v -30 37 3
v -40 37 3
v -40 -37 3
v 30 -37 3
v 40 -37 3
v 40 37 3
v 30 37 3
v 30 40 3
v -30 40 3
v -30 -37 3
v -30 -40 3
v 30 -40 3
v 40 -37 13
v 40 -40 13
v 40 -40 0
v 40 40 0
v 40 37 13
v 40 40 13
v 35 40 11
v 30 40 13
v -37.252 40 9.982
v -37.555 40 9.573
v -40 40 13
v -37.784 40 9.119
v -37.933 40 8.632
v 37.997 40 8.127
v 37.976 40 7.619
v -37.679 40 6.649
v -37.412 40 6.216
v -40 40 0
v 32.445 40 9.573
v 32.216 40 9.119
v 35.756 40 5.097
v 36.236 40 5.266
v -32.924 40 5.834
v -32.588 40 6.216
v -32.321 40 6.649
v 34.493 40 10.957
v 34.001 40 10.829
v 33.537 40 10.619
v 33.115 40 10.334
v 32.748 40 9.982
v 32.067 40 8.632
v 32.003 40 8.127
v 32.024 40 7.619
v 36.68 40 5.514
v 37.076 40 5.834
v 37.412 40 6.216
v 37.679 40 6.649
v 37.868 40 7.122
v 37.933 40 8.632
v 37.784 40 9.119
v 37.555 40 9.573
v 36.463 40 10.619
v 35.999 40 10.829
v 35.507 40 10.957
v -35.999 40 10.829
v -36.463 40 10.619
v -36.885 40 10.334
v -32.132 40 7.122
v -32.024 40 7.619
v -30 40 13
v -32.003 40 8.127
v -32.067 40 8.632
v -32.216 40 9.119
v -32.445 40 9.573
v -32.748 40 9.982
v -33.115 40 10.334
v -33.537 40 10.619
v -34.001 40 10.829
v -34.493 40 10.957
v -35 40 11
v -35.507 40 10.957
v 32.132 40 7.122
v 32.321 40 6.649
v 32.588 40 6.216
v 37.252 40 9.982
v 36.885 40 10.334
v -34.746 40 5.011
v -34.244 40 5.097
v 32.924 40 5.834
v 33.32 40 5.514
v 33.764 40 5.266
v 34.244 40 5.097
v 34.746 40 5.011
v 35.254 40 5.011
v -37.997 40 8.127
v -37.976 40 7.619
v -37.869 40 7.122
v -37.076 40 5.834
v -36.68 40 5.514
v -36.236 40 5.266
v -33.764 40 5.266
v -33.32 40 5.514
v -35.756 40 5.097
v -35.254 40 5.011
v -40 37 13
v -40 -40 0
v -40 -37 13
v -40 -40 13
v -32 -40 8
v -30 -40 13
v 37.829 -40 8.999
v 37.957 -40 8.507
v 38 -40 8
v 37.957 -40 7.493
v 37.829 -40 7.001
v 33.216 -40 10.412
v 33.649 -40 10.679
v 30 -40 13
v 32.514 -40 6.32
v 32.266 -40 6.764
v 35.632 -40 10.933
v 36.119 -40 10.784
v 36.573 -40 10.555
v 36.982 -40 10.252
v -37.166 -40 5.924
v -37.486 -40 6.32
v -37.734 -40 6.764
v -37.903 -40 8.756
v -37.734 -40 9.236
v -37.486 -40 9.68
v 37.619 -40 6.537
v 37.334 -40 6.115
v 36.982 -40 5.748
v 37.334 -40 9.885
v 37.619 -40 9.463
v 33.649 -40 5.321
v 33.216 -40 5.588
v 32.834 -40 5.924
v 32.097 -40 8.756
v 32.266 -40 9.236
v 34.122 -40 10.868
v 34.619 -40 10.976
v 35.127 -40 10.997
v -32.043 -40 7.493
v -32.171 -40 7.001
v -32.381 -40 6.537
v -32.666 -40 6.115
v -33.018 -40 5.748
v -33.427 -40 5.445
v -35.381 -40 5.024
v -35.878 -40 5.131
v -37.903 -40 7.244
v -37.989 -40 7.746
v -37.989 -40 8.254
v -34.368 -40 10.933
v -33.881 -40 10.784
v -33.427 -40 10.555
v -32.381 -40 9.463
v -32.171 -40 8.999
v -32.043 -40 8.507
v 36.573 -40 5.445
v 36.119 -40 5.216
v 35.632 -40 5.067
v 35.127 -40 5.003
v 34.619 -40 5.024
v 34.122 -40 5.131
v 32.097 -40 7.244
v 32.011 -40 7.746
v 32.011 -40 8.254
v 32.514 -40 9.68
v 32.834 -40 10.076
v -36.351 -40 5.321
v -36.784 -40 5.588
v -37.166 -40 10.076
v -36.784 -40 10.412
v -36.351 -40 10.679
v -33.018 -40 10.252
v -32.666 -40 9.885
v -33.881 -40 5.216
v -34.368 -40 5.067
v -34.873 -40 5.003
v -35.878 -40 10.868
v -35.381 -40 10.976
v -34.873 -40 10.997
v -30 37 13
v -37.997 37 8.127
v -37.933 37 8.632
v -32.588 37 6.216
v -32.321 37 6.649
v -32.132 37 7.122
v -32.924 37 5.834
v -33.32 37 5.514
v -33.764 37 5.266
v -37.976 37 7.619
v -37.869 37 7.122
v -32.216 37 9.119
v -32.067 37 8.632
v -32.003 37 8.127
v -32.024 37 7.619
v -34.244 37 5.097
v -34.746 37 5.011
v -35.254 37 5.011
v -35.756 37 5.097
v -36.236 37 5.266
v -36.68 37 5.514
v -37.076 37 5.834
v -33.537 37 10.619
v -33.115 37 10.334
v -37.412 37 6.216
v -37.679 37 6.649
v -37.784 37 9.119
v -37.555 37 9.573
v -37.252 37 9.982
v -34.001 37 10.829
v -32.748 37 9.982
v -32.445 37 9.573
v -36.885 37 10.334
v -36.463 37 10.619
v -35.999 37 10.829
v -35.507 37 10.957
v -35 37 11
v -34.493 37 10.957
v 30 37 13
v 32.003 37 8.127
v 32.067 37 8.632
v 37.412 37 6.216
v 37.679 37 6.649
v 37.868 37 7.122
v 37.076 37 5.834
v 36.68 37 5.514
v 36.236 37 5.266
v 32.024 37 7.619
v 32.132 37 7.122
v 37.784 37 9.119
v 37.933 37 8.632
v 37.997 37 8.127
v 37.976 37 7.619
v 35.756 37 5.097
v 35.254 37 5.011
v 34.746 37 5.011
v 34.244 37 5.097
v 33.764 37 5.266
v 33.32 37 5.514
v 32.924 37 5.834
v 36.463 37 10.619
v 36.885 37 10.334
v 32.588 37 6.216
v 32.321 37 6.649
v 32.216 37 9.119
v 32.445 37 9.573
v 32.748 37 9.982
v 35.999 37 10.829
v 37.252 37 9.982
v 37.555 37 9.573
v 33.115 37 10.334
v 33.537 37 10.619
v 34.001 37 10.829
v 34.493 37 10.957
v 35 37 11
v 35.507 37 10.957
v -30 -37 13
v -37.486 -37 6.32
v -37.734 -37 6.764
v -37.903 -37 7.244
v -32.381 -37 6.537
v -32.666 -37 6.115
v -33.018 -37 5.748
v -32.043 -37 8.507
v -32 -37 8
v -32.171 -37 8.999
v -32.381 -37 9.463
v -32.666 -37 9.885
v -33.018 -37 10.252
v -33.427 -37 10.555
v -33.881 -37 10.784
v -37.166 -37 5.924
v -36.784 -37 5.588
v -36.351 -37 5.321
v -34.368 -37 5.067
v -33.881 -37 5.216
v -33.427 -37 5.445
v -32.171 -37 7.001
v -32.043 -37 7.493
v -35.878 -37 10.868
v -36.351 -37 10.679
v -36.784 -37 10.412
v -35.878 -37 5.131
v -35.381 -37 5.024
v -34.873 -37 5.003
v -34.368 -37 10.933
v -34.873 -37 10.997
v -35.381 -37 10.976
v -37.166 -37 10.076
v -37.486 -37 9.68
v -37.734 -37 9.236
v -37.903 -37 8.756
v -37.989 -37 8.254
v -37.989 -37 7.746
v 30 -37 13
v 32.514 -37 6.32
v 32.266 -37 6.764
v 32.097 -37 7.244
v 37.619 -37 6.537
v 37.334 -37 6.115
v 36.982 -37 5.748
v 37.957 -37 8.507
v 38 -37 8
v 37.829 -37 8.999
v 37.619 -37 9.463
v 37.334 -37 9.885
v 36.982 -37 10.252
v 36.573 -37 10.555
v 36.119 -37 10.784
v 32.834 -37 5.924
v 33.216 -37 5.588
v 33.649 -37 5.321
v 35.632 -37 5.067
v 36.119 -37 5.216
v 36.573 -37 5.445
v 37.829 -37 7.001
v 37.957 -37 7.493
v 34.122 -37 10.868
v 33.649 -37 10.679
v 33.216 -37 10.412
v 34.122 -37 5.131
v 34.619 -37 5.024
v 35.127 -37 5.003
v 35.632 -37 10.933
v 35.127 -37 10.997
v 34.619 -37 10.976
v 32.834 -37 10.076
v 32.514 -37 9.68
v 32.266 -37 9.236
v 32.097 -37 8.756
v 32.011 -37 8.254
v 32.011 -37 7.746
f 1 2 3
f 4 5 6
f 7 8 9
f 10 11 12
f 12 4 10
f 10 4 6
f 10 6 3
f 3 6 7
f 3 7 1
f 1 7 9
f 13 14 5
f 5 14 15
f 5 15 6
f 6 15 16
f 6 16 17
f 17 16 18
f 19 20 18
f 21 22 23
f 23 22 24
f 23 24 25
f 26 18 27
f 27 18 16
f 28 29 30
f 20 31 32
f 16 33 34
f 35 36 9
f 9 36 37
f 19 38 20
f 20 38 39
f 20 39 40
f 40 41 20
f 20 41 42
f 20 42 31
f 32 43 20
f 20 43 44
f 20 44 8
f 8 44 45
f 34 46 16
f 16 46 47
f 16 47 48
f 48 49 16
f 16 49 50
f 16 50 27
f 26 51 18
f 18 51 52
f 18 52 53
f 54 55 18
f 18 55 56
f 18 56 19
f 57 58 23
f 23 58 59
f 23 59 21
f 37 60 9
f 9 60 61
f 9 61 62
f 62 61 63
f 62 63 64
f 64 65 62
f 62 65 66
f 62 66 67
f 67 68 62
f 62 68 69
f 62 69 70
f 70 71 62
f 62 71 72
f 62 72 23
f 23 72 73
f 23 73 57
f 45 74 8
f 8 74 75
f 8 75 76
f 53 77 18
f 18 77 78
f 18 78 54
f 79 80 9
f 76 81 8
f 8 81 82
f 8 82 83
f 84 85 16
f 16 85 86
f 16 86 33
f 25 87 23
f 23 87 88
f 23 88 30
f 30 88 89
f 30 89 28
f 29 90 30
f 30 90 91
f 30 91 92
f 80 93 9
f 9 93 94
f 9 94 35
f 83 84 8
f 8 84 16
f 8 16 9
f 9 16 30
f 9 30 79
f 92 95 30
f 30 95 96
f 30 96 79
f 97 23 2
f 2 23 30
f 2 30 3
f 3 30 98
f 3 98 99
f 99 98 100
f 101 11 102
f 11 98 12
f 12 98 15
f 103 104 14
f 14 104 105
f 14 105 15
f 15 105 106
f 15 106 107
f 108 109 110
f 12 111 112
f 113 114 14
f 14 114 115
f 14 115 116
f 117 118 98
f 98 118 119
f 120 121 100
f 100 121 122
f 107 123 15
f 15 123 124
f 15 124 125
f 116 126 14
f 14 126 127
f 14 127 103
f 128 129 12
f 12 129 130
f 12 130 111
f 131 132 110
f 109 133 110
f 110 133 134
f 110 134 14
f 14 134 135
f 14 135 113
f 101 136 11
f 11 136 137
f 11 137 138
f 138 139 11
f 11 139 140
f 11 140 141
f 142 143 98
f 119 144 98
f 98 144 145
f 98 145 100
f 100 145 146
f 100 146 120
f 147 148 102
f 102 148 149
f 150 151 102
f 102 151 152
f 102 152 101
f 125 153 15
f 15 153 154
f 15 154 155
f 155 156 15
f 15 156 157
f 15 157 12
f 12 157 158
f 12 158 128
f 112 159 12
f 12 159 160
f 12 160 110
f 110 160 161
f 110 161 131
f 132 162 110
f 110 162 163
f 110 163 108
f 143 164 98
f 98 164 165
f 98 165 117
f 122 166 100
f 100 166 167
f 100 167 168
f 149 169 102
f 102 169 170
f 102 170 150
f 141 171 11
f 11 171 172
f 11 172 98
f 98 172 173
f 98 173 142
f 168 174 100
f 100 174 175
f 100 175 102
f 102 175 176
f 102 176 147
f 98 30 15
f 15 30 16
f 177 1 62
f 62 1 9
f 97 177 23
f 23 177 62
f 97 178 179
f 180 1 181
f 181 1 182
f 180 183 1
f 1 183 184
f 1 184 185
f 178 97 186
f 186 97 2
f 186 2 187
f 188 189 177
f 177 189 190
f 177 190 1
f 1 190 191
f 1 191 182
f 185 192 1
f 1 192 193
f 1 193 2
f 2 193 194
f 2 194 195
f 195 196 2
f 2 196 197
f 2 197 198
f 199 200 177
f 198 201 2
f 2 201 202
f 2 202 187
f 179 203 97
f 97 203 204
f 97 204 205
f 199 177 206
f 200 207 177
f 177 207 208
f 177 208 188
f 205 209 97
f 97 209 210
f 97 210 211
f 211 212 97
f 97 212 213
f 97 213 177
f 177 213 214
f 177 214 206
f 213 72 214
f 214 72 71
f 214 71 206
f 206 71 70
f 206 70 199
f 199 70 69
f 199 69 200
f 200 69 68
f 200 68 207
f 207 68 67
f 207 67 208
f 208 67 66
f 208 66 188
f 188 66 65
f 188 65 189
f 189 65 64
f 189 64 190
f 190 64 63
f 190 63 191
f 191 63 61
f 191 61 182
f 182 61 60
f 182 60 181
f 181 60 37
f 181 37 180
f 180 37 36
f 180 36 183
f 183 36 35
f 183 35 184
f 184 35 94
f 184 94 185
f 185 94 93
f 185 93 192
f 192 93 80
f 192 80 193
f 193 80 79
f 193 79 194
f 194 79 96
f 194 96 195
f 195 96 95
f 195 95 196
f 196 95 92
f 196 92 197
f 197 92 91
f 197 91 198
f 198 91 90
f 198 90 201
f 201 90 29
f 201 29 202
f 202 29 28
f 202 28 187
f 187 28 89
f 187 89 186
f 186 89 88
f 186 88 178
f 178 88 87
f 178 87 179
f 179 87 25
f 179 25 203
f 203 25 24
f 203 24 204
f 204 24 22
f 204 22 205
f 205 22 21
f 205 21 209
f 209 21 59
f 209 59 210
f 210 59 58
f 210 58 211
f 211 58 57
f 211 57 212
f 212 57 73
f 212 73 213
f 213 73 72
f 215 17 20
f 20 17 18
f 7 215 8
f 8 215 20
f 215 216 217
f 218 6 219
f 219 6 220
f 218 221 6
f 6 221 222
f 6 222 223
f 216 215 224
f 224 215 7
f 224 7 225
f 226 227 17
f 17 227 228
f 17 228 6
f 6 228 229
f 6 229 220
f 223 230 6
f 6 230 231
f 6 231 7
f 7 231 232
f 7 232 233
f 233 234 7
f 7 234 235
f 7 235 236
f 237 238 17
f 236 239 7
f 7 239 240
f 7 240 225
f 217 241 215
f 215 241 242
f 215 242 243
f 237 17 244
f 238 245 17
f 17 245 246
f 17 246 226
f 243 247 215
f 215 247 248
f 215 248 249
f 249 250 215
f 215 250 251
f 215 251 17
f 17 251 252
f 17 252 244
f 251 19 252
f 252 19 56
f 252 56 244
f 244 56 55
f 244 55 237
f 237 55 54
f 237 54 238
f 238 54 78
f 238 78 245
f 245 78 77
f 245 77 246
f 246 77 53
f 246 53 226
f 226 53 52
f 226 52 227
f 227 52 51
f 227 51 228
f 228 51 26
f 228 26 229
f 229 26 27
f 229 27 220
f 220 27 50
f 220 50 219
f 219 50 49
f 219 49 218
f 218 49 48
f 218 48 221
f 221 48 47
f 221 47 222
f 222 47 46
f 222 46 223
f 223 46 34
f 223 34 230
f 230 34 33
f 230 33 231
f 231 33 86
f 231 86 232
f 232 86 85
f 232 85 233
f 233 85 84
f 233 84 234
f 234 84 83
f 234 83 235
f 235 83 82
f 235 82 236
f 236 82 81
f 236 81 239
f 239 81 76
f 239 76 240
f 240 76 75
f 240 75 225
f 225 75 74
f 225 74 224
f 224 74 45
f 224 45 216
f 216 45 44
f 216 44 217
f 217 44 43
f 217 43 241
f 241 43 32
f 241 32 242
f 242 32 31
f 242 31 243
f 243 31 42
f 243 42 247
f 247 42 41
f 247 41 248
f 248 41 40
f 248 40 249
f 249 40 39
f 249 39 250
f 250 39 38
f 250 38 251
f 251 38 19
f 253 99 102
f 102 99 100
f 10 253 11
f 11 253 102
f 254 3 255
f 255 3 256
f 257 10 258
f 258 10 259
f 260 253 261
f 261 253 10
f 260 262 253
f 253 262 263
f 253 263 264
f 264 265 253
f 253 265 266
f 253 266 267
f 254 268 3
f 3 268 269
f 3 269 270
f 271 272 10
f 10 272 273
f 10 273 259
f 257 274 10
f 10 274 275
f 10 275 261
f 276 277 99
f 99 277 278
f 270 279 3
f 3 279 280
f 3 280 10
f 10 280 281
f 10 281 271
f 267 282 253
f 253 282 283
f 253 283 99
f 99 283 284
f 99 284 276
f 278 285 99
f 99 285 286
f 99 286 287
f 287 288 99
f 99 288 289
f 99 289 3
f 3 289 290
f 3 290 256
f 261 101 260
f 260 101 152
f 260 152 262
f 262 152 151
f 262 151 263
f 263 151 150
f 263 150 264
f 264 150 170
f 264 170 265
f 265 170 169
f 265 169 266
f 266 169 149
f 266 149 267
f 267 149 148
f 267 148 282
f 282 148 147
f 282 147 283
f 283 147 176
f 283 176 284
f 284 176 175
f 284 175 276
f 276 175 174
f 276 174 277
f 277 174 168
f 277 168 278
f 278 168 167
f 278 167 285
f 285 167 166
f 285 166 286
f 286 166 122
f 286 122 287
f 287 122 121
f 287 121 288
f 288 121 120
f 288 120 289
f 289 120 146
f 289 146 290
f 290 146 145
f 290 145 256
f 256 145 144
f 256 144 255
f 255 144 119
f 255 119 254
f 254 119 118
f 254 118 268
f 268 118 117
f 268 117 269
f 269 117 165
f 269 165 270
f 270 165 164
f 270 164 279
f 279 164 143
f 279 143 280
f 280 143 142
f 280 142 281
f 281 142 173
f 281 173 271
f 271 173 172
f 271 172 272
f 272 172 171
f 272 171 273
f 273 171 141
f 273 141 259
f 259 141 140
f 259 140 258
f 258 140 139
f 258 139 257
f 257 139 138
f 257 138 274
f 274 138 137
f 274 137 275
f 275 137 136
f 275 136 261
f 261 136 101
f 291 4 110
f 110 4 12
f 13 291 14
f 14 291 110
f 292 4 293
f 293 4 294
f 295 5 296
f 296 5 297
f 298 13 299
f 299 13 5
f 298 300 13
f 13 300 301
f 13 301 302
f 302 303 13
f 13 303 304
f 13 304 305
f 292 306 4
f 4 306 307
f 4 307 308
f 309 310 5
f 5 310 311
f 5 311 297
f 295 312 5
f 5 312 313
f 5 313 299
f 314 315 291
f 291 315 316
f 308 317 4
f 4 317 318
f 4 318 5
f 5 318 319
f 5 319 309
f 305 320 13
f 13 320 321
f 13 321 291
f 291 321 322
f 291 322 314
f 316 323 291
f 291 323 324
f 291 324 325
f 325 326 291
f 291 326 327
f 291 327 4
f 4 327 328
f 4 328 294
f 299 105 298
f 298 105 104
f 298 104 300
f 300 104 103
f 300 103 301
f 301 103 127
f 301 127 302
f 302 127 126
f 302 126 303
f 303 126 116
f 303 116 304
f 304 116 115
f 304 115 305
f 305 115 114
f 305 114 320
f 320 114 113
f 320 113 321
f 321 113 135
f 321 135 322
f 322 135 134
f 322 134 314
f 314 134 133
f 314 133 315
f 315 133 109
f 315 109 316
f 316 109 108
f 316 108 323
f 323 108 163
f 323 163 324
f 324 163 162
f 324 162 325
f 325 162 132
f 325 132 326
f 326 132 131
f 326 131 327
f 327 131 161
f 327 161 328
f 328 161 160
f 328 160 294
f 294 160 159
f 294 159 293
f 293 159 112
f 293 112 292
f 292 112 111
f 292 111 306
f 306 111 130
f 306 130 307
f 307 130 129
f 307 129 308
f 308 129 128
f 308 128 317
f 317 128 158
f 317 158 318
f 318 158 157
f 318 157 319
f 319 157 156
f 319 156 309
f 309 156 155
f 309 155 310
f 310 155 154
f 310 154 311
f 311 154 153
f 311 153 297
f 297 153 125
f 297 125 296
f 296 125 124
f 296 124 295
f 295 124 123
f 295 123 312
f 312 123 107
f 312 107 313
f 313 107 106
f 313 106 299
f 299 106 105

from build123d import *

# Parameters (mm, degrees)
SKETCH1_W           = 80
SKETCH1_H           = 80
BOSS_EXTRUDE1_DEPTH = 3
SKETCH9_W           = 10
SKETCH9_H           = 10
SKETCH9_R           = 3
BOSS_EXTRUDE8_DEPTH = 3
BOSS_EXTRUDE9_START = -3
SKETCH10_W          = 10
SKETCH10_H          = 10
SKETCH10_R          = 3
BOSS_EXTRUDE9_DEPTH = 3


with BuildPart() as part:
    # Sketch1 → Boss-Extrude1 (new body)
    with BuildSketch(Plane.XY):
        Rectangle(SKETCH1_W, SKETCH1_H)
    extrude(amount=BOSS_EXTRUDE1_DEPTH)

    # Sketch9 → Boss-Extrude8 (add)
    # profile 1 of 2: a face of its own
    with BuildSketch(Plane(origin=(0, 40, 0), x_dir=(1, 0, 0), z_dir=(0, 1, 0))):
        with Locations((-35, -8)):
            Rectangle(SKETCH9_W, SKETCH9_H)
        with Locations(Location((-35, -8, 0), (0, 0, 270))):
            Circle(SKETCH9_R, mode=Mode.SUBTRACT)
    # profile 2 of 2: a face of its own
    with BuildSketch(Plane(origin=(0, 40, 0), x_dir=(1, 0, 0), z_dir=(0, 1, 0))):
        with Locations((35, -8)):
            Rectangle(SKETCH9_W, SKETCH9_H)
        with Locations(Location((35, -8, 0), (0, 0, 270))):
            Circle(SKETCH9_R, mode=Mode.SUBTRACT)
    extrude(amount=-BOSS_EXTRUDE8_DEPTH)

    # Sketch10 → Boss-Extrude9 (add)
    # profile 1 of 2: a face of its own
    with BuildSketch(Plane.XZ.offset(40).offset(BOSS_EXTRUDE9_START)):
        with Locations((-35, 8)):
            Rectangle(SKETCH10_W, SKETCH10_H)
        with Locations(Location((-35, 8, 0), (0, 0, 90))):
            Circle(SKETCH10_R, mode=Mode.SUBTRACT)
    # profile 2 of 2: a face of its own
    with BuildSketch(Plane.XZ.offset(40).offset(BOSS_EXTRUDE9_START)):
        with Locations((35, 8)):
            Rectangle(SKETCH10_W, SKETCH10_H)
        with Locations(Location((35, 8, 0), (0, 0, 90))):
            Circle(SKETCH10_R, mode=Mode.SUBTRACT)
    extrude(amount=BOSS_EXTRUDE9_DEPTH)


solid = part.part
